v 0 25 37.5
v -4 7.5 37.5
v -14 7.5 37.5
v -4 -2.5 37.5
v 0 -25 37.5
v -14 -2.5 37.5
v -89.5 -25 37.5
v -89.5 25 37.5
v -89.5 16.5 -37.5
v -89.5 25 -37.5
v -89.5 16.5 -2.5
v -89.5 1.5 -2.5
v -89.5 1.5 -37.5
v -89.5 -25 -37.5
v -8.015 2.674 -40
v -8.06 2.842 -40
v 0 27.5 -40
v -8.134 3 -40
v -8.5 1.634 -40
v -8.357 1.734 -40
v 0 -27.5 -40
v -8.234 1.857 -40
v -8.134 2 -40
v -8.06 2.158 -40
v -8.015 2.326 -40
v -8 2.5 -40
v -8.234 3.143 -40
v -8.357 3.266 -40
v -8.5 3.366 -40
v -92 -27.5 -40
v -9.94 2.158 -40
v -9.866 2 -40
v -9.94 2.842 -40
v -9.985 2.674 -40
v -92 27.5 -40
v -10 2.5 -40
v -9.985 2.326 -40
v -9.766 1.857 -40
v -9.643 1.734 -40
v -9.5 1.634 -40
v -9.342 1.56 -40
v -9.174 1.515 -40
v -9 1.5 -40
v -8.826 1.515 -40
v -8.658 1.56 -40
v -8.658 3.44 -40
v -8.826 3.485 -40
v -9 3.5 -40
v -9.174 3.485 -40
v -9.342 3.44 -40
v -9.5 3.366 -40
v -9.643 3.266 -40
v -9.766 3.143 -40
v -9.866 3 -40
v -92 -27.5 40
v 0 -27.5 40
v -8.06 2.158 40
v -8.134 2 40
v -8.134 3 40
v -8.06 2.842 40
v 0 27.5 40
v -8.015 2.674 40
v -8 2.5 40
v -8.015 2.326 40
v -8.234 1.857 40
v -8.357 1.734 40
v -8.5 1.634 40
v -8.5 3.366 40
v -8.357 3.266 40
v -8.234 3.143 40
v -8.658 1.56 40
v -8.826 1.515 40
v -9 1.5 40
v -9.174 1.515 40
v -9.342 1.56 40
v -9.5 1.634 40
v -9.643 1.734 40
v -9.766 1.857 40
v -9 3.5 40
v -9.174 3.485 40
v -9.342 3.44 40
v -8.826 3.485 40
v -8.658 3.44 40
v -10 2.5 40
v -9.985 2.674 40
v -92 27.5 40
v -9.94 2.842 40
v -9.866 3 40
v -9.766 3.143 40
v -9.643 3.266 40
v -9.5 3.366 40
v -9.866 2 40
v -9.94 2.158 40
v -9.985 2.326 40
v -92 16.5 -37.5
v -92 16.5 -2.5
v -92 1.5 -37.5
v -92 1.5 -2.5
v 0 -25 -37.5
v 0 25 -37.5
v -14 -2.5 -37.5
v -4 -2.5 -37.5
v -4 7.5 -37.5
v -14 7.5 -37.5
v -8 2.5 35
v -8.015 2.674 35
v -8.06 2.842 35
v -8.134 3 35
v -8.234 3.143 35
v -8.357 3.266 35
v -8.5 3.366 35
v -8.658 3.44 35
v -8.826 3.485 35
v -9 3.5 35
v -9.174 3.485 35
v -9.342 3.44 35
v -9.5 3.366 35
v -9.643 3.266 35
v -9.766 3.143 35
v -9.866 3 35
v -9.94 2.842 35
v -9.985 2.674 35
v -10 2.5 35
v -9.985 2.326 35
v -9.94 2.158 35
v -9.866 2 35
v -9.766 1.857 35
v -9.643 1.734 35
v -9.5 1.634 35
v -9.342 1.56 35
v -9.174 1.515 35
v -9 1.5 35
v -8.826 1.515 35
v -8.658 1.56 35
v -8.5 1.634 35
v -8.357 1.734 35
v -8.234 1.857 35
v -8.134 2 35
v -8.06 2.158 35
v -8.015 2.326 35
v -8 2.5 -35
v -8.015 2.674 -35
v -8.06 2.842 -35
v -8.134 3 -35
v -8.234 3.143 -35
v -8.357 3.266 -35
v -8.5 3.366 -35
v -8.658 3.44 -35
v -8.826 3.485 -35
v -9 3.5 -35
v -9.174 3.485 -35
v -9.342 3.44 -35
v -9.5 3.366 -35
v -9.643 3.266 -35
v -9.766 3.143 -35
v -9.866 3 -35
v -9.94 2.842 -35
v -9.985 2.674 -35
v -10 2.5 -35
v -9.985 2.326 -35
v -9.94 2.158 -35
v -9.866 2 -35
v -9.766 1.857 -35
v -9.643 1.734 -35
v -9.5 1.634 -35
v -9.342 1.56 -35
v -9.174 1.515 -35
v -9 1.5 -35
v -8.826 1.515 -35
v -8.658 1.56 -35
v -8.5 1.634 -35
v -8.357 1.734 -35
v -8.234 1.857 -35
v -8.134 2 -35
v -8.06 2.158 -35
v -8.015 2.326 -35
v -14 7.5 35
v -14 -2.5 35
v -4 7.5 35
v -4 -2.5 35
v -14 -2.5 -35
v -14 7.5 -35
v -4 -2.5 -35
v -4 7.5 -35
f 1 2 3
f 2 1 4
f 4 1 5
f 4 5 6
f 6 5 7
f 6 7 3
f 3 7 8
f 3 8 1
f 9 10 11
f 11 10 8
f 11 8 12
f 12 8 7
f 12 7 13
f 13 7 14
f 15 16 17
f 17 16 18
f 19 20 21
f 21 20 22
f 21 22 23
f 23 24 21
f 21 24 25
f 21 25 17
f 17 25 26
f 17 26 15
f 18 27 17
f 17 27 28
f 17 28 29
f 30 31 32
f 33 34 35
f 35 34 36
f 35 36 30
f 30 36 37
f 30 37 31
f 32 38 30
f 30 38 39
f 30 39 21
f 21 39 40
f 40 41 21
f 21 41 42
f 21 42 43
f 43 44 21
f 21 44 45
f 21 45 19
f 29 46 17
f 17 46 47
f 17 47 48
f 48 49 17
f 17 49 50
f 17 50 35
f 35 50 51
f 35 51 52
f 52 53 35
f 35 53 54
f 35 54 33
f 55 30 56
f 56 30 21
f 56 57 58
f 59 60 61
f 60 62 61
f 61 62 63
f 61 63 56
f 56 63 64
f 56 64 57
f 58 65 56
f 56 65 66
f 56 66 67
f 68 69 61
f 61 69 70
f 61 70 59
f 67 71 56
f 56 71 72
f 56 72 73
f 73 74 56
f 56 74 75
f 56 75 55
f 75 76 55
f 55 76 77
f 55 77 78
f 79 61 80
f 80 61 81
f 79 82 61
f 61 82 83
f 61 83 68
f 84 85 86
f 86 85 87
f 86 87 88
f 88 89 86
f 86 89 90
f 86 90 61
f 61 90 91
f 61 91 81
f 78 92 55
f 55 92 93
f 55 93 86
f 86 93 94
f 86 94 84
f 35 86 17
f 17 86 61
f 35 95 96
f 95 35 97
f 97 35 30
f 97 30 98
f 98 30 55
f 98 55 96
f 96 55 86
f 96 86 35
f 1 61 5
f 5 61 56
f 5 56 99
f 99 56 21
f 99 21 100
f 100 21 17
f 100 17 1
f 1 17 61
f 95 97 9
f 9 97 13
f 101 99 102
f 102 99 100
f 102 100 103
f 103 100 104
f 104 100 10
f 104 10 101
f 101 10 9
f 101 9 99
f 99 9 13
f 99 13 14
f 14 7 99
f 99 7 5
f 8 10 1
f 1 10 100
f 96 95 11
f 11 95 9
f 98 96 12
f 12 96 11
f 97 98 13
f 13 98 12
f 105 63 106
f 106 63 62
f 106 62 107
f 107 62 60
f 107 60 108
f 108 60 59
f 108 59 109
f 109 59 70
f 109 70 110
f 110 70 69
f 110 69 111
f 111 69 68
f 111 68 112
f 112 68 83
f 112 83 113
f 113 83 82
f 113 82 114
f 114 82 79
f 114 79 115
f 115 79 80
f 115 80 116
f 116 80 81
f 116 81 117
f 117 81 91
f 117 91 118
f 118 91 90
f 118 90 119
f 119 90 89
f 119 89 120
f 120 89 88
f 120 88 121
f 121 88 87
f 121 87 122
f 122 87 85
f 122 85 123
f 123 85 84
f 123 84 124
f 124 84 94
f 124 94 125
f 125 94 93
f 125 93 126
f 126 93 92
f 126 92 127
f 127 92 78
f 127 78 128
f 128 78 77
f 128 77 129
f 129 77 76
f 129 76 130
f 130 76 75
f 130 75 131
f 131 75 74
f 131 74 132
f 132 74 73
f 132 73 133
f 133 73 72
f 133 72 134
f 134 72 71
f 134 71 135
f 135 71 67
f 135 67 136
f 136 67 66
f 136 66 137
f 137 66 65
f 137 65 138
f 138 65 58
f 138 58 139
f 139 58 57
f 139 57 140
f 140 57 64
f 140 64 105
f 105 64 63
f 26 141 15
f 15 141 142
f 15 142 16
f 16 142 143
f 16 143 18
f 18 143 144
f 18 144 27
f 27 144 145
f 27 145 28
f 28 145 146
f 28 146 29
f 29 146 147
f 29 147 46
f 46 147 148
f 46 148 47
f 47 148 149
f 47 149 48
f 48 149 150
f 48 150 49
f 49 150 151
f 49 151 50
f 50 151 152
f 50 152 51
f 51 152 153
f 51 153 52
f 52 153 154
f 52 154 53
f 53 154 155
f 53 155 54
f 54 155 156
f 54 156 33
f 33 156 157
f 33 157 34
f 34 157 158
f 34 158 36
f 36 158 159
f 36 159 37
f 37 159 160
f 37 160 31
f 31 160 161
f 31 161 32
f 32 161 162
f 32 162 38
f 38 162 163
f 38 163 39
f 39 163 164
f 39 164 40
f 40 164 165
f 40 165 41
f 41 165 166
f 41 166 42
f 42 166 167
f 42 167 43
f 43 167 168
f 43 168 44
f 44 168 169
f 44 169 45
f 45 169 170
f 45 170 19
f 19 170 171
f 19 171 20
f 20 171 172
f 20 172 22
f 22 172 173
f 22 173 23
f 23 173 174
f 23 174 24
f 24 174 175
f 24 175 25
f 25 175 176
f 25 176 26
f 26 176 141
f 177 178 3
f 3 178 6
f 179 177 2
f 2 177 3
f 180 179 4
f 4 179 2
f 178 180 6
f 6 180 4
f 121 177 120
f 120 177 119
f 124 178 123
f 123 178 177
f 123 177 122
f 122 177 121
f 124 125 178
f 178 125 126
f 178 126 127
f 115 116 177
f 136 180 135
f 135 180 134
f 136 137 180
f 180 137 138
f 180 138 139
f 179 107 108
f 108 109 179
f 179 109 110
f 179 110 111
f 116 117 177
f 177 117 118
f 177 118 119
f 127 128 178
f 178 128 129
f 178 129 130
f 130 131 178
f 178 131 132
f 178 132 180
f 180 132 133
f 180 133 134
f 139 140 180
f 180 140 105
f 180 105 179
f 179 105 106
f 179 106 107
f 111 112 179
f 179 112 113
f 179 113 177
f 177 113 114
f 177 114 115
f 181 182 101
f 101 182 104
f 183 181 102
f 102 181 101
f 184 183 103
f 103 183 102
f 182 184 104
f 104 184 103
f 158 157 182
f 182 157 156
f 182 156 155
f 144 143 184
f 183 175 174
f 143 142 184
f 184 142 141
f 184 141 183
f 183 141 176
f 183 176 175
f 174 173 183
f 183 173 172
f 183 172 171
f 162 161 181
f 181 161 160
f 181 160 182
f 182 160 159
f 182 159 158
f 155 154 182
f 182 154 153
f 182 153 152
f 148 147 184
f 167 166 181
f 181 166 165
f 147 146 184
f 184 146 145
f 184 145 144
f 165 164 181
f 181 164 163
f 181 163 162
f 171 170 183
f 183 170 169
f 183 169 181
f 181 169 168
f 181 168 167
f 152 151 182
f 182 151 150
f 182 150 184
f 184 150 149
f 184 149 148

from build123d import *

# Parameters (mm, degrees)
ESBO_O2_W                = 80
ESBO_O2_H                = 55
RESSALTO_EXTRUS_O1_DEPTH = 92
ESBO_O3_W                = 75
ESBO_O3_H                = 50
CORTE_EXTRUS_O1_DEPTH    = 89.5
ESBO_O4_W                = 35
ESBO_O4_H                = 15
CORTE_EXTRUS_O2_DEPTH    = 2.5
ESBO_O5_R                = 1
CORTE_EXTRUS_O3_DEPTH    = 125.980998556
ESBO_O6_W                = 10
ESBO_O6_H                = 10
RESSALTO_EXTRUS_O2_DEPTH = 2.5
ESBO_O8_R                = 1
CORTE_EXTRUS_O4_DEPTH    = 122.841085025


with BuildPart() as part:
    # Esboço2 → Ressalto-extrusão1 (new body)
    with BuildSketch(Plane(origin=(0, 0, 0), x_dir=(0, 0, -1), z_dir=(1, 0, 0))):
        Rectangle(ESBO_O2_W, ESBO_O2_H)
    extrude(amount=-RESSALTO_EXTRUS_O1_DEPTH)

    # Esboço3 → Corte-extrusão1 (cut)
    with BuildSketch(Plane(origin=(0, 0, 0), x_dir=(0, 0, -1), z_dir=(1, 0, 0))):
        Rectangle(ESBO_O3_W, ESBO_O3_H)
    extrude(amount=-CORTE_EXTRUS_O1_DEPTH, mode=Mode.SUBTRACT)

    # Esboço4 → Corte-extrusão2 (cut)
    with BuildSketch(Plane.ZY.offset(92)):
        with Locations((-20, 9)):
            Rectangle(ESBO_O4_W, ESBO_O4_H)
    extrude(amount=-CORTE_EXTRUS_O2_DEPTH, mode=Mode.SUBTRACT)

    # Esboço5 → Corte-extrusão3 (cut, through all)
    with BuildSketch(Plane.XY.offset(40)):
        with Locations((-9, 2.5)):
            Circle(ESBO_O5_R)
    extrude(amount=-CORTE_EXTRUS_O3_DEPTH, mode=Mode.SUBTRACT)

    # Esboço6 → Ressalto-extrusão2 (add)
    with BuildSketch(Plane(origin=(0, 0, 37.5), x_dir=(-1, 0, 0), z_dir=(0, 0, -1))):
        with Locations((9, 2.5)):
            Rectangle(ESBO_O6_W, ESBO_O6_H)
    ressalto_extrus_o2 = extrude(amount=RESSALTO_EXTRUS_O2_DEPTH)

    # Esboço8 → Corte-extrusão4 (cut, through all)
    with BuildSketch(Plane(origin=(0, 0, 35), x_dir=(-1, 0, 0), z_dir=(0, 0, -1))):
        with Locations(Location((9, 2.5, 0), (0, 0, 180))):
            Circle(ESBO_O8_R)
    corte_extrus_o4 = extrude(amount=-CORTE_EXTRUS_O4_DEPTH, mode=Mode.SUBTRACT)

    # Espelhar3: Ressalto-extrusão2, Corte-extrusão4 across plane
    add(ressalto_extrus_o2.mirror(Plane.XY))
    add(corte_extrus_o4.mirror(Plane.XY), mode=Mode.SUBTRACT)


solid = part.part
